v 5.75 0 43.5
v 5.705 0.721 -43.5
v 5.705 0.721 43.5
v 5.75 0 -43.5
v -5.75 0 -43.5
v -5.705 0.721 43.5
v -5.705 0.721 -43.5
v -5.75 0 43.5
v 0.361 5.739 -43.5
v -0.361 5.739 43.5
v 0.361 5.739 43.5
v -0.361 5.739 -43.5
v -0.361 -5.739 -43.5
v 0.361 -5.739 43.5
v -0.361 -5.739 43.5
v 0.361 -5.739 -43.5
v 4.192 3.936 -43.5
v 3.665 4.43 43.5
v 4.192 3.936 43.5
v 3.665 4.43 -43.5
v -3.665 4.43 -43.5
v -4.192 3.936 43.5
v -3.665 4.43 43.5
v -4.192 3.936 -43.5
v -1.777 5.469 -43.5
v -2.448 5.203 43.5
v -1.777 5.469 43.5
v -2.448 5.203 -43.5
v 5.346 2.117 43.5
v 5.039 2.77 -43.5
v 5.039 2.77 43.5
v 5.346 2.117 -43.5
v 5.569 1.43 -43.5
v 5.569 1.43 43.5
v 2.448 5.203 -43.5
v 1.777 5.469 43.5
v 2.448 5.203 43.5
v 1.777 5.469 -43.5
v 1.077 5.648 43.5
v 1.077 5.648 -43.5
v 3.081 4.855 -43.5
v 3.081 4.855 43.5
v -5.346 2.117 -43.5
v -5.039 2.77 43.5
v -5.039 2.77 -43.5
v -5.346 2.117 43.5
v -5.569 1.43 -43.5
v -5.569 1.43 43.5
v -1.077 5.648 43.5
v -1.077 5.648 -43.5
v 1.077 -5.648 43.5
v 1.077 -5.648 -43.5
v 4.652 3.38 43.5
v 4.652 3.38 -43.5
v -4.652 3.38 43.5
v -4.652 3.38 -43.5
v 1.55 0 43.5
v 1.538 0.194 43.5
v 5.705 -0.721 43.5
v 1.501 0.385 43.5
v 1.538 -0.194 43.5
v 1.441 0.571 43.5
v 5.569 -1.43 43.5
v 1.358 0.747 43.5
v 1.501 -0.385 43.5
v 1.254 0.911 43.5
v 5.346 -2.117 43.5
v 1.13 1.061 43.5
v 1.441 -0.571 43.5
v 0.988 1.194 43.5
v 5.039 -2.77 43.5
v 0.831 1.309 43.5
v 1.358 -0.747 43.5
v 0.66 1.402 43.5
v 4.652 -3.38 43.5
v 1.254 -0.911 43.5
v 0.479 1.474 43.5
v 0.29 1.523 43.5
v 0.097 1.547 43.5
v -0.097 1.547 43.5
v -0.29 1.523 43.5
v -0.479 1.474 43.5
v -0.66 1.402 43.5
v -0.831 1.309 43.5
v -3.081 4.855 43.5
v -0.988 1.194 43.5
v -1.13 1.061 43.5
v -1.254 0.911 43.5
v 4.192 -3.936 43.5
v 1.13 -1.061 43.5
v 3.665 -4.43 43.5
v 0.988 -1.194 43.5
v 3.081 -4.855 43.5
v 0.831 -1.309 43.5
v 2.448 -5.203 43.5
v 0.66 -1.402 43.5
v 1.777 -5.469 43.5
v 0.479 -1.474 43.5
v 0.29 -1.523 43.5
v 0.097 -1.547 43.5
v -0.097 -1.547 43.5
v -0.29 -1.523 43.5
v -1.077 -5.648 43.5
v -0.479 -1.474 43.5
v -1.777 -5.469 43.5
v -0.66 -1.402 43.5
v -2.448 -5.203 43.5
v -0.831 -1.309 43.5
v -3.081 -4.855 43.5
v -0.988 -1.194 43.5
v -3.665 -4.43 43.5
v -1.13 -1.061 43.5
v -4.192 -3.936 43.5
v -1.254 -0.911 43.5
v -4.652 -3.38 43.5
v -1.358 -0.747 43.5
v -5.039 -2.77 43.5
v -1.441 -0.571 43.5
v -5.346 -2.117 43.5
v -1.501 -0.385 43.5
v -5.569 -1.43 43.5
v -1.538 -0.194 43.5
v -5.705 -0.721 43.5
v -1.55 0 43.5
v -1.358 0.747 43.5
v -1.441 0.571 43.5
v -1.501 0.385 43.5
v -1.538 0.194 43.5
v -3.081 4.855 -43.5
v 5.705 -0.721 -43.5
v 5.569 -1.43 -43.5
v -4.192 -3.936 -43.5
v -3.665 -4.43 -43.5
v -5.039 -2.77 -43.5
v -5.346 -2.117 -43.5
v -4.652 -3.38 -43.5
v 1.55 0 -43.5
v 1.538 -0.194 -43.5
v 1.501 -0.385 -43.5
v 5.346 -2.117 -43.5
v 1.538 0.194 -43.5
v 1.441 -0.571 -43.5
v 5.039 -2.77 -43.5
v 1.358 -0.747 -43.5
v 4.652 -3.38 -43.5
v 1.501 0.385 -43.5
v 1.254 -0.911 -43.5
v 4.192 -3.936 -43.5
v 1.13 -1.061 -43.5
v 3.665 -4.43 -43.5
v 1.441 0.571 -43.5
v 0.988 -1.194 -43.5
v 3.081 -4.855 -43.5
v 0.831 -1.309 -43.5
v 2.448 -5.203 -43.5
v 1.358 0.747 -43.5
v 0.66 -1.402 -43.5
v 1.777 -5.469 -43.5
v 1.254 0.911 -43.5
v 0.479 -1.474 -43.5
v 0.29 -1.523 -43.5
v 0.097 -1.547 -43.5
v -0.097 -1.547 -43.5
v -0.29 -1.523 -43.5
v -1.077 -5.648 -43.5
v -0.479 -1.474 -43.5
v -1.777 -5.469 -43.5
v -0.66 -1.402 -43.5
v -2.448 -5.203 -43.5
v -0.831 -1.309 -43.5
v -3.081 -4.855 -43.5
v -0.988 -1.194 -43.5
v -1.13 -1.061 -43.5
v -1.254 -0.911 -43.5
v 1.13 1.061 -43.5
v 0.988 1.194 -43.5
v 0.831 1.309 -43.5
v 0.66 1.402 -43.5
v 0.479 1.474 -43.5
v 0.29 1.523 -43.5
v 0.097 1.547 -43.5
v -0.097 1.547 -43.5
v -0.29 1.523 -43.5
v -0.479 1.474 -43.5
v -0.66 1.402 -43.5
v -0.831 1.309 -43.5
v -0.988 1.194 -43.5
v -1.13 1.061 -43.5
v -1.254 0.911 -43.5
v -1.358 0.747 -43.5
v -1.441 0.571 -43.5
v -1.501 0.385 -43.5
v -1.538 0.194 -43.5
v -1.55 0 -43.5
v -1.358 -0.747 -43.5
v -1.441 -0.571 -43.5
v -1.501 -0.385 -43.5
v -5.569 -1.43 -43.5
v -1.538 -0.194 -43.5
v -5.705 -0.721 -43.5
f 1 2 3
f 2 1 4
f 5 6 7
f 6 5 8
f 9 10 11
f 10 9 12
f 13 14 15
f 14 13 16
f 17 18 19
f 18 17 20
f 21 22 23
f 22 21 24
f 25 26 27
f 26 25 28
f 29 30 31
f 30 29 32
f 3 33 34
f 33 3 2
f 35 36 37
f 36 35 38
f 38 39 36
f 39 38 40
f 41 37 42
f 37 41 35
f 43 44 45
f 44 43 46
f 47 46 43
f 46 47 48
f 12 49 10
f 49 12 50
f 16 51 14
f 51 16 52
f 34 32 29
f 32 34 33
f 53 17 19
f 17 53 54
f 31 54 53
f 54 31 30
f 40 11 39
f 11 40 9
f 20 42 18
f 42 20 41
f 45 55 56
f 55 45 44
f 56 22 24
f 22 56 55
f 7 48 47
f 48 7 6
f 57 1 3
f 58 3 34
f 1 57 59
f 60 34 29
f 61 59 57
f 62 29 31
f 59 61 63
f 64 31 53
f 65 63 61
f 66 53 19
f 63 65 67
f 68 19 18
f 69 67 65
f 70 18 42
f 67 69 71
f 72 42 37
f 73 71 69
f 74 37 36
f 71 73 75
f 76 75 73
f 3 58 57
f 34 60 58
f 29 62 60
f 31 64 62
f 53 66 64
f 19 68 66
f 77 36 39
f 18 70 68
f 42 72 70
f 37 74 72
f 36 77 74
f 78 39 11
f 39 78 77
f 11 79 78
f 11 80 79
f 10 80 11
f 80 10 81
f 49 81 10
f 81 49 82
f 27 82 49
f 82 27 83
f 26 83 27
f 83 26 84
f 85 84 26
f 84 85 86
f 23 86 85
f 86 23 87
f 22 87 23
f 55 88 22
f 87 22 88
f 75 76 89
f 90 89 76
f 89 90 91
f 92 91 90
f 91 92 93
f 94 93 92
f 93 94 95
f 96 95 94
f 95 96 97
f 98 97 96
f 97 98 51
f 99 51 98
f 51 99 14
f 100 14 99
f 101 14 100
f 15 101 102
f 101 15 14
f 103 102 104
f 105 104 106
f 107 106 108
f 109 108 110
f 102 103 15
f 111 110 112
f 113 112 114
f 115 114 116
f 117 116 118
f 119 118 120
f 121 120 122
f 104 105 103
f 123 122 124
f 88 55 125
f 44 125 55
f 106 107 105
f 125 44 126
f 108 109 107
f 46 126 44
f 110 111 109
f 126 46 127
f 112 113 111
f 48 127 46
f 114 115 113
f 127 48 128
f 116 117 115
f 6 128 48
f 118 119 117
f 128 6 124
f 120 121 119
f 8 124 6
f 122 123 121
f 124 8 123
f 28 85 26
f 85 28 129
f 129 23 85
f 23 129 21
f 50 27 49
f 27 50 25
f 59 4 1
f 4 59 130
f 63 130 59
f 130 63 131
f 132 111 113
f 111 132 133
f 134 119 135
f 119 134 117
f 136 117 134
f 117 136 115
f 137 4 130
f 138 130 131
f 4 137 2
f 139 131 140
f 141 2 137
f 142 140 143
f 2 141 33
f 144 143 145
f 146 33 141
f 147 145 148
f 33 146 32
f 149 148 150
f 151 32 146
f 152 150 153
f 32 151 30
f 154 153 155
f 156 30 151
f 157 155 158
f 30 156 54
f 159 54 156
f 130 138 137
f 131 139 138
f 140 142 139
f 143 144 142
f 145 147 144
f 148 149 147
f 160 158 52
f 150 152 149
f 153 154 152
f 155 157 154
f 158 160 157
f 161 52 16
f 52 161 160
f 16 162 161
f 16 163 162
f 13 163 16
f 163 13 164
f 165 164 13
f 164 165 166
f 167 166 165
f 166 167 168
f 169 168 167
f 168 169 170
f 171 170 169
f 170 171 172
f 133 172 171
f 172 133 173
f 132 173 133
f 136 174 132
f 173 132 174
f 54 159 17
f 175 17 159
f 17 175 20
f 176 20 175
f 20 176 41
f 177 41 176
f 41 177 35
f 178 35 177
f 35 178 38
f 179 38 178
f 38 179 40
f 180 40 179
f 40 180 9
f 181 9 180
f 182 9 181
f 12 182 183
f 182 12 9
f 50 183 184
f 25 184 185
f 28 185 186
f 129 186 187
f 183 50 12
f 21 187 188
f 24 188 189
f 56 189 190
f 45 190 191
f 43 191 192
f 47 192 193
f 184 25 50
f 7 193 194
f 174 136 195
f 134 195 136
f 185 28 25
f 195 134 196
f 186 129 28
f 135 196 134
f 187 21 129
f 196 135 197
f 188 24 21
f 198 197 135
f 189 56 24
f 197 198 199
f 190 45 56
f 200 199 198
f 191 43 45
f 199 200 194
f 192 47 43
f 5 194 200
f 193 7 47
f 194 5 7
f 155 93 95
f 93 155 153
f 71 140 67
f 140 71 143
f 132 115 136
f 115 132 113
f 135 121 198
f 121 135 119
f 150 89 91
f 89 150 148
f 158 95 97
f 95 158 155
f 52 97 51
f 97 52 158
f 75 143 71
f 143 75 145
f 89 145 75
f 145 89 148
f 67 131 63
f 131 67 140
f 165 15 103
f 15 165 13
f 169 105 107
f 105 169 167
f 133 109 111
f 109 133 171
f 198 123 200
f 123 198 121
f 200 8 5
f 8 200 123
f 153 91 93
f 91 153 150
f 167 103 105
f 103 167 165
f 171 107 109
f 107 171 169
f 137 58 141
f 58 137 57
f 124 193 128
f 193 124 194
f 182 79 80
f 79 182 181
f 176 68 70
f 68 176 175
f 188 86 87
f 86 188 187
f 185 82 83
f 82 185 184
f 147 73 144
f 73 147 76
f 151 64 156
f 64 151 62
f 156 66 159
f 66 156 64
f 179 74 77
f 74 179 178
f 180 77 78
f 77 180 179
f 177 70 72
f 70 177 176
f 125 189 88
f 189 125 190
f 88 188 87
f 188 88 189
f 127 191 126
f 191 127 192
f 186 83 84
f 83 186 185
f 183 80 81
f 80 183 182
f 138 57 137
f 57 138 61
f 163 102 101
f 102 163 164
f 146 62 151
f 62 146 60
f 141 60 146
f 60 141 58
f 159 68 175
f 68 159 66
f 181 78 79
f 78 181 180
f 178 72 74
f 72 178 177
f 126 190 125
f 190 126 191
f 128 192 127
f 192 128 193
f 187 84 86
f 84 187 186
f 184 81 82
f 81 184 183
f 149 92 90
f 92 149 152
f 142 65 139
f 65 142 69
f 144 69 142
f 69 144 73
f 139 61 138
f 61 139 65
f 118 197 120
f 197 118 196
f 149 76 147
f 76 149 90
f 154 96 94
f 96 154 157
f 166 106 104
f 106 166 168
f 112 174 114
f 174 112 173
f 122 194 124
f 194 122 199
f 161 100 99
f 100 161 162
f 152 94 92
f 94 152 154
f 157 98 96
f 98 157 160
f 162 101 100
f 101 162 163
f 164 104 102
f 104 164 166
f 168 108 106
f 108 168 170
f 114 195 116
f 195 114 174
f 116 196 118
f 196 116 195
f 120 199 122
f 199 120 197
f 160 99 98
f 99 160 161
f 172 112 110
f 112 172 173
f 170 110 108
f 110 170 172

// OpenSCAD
$fn = 50;


difference() {
	union() {
		translate(v = [0, 0, -43.5000000000]) {
			cylinder(h = 87, r = 5.7500000000);
		}
	}
	union() {
		translate(v = [0, 0, -100.0000000000]) {
			cylinder(h = 200, r = 1.5500000000);
		}
	}
}
